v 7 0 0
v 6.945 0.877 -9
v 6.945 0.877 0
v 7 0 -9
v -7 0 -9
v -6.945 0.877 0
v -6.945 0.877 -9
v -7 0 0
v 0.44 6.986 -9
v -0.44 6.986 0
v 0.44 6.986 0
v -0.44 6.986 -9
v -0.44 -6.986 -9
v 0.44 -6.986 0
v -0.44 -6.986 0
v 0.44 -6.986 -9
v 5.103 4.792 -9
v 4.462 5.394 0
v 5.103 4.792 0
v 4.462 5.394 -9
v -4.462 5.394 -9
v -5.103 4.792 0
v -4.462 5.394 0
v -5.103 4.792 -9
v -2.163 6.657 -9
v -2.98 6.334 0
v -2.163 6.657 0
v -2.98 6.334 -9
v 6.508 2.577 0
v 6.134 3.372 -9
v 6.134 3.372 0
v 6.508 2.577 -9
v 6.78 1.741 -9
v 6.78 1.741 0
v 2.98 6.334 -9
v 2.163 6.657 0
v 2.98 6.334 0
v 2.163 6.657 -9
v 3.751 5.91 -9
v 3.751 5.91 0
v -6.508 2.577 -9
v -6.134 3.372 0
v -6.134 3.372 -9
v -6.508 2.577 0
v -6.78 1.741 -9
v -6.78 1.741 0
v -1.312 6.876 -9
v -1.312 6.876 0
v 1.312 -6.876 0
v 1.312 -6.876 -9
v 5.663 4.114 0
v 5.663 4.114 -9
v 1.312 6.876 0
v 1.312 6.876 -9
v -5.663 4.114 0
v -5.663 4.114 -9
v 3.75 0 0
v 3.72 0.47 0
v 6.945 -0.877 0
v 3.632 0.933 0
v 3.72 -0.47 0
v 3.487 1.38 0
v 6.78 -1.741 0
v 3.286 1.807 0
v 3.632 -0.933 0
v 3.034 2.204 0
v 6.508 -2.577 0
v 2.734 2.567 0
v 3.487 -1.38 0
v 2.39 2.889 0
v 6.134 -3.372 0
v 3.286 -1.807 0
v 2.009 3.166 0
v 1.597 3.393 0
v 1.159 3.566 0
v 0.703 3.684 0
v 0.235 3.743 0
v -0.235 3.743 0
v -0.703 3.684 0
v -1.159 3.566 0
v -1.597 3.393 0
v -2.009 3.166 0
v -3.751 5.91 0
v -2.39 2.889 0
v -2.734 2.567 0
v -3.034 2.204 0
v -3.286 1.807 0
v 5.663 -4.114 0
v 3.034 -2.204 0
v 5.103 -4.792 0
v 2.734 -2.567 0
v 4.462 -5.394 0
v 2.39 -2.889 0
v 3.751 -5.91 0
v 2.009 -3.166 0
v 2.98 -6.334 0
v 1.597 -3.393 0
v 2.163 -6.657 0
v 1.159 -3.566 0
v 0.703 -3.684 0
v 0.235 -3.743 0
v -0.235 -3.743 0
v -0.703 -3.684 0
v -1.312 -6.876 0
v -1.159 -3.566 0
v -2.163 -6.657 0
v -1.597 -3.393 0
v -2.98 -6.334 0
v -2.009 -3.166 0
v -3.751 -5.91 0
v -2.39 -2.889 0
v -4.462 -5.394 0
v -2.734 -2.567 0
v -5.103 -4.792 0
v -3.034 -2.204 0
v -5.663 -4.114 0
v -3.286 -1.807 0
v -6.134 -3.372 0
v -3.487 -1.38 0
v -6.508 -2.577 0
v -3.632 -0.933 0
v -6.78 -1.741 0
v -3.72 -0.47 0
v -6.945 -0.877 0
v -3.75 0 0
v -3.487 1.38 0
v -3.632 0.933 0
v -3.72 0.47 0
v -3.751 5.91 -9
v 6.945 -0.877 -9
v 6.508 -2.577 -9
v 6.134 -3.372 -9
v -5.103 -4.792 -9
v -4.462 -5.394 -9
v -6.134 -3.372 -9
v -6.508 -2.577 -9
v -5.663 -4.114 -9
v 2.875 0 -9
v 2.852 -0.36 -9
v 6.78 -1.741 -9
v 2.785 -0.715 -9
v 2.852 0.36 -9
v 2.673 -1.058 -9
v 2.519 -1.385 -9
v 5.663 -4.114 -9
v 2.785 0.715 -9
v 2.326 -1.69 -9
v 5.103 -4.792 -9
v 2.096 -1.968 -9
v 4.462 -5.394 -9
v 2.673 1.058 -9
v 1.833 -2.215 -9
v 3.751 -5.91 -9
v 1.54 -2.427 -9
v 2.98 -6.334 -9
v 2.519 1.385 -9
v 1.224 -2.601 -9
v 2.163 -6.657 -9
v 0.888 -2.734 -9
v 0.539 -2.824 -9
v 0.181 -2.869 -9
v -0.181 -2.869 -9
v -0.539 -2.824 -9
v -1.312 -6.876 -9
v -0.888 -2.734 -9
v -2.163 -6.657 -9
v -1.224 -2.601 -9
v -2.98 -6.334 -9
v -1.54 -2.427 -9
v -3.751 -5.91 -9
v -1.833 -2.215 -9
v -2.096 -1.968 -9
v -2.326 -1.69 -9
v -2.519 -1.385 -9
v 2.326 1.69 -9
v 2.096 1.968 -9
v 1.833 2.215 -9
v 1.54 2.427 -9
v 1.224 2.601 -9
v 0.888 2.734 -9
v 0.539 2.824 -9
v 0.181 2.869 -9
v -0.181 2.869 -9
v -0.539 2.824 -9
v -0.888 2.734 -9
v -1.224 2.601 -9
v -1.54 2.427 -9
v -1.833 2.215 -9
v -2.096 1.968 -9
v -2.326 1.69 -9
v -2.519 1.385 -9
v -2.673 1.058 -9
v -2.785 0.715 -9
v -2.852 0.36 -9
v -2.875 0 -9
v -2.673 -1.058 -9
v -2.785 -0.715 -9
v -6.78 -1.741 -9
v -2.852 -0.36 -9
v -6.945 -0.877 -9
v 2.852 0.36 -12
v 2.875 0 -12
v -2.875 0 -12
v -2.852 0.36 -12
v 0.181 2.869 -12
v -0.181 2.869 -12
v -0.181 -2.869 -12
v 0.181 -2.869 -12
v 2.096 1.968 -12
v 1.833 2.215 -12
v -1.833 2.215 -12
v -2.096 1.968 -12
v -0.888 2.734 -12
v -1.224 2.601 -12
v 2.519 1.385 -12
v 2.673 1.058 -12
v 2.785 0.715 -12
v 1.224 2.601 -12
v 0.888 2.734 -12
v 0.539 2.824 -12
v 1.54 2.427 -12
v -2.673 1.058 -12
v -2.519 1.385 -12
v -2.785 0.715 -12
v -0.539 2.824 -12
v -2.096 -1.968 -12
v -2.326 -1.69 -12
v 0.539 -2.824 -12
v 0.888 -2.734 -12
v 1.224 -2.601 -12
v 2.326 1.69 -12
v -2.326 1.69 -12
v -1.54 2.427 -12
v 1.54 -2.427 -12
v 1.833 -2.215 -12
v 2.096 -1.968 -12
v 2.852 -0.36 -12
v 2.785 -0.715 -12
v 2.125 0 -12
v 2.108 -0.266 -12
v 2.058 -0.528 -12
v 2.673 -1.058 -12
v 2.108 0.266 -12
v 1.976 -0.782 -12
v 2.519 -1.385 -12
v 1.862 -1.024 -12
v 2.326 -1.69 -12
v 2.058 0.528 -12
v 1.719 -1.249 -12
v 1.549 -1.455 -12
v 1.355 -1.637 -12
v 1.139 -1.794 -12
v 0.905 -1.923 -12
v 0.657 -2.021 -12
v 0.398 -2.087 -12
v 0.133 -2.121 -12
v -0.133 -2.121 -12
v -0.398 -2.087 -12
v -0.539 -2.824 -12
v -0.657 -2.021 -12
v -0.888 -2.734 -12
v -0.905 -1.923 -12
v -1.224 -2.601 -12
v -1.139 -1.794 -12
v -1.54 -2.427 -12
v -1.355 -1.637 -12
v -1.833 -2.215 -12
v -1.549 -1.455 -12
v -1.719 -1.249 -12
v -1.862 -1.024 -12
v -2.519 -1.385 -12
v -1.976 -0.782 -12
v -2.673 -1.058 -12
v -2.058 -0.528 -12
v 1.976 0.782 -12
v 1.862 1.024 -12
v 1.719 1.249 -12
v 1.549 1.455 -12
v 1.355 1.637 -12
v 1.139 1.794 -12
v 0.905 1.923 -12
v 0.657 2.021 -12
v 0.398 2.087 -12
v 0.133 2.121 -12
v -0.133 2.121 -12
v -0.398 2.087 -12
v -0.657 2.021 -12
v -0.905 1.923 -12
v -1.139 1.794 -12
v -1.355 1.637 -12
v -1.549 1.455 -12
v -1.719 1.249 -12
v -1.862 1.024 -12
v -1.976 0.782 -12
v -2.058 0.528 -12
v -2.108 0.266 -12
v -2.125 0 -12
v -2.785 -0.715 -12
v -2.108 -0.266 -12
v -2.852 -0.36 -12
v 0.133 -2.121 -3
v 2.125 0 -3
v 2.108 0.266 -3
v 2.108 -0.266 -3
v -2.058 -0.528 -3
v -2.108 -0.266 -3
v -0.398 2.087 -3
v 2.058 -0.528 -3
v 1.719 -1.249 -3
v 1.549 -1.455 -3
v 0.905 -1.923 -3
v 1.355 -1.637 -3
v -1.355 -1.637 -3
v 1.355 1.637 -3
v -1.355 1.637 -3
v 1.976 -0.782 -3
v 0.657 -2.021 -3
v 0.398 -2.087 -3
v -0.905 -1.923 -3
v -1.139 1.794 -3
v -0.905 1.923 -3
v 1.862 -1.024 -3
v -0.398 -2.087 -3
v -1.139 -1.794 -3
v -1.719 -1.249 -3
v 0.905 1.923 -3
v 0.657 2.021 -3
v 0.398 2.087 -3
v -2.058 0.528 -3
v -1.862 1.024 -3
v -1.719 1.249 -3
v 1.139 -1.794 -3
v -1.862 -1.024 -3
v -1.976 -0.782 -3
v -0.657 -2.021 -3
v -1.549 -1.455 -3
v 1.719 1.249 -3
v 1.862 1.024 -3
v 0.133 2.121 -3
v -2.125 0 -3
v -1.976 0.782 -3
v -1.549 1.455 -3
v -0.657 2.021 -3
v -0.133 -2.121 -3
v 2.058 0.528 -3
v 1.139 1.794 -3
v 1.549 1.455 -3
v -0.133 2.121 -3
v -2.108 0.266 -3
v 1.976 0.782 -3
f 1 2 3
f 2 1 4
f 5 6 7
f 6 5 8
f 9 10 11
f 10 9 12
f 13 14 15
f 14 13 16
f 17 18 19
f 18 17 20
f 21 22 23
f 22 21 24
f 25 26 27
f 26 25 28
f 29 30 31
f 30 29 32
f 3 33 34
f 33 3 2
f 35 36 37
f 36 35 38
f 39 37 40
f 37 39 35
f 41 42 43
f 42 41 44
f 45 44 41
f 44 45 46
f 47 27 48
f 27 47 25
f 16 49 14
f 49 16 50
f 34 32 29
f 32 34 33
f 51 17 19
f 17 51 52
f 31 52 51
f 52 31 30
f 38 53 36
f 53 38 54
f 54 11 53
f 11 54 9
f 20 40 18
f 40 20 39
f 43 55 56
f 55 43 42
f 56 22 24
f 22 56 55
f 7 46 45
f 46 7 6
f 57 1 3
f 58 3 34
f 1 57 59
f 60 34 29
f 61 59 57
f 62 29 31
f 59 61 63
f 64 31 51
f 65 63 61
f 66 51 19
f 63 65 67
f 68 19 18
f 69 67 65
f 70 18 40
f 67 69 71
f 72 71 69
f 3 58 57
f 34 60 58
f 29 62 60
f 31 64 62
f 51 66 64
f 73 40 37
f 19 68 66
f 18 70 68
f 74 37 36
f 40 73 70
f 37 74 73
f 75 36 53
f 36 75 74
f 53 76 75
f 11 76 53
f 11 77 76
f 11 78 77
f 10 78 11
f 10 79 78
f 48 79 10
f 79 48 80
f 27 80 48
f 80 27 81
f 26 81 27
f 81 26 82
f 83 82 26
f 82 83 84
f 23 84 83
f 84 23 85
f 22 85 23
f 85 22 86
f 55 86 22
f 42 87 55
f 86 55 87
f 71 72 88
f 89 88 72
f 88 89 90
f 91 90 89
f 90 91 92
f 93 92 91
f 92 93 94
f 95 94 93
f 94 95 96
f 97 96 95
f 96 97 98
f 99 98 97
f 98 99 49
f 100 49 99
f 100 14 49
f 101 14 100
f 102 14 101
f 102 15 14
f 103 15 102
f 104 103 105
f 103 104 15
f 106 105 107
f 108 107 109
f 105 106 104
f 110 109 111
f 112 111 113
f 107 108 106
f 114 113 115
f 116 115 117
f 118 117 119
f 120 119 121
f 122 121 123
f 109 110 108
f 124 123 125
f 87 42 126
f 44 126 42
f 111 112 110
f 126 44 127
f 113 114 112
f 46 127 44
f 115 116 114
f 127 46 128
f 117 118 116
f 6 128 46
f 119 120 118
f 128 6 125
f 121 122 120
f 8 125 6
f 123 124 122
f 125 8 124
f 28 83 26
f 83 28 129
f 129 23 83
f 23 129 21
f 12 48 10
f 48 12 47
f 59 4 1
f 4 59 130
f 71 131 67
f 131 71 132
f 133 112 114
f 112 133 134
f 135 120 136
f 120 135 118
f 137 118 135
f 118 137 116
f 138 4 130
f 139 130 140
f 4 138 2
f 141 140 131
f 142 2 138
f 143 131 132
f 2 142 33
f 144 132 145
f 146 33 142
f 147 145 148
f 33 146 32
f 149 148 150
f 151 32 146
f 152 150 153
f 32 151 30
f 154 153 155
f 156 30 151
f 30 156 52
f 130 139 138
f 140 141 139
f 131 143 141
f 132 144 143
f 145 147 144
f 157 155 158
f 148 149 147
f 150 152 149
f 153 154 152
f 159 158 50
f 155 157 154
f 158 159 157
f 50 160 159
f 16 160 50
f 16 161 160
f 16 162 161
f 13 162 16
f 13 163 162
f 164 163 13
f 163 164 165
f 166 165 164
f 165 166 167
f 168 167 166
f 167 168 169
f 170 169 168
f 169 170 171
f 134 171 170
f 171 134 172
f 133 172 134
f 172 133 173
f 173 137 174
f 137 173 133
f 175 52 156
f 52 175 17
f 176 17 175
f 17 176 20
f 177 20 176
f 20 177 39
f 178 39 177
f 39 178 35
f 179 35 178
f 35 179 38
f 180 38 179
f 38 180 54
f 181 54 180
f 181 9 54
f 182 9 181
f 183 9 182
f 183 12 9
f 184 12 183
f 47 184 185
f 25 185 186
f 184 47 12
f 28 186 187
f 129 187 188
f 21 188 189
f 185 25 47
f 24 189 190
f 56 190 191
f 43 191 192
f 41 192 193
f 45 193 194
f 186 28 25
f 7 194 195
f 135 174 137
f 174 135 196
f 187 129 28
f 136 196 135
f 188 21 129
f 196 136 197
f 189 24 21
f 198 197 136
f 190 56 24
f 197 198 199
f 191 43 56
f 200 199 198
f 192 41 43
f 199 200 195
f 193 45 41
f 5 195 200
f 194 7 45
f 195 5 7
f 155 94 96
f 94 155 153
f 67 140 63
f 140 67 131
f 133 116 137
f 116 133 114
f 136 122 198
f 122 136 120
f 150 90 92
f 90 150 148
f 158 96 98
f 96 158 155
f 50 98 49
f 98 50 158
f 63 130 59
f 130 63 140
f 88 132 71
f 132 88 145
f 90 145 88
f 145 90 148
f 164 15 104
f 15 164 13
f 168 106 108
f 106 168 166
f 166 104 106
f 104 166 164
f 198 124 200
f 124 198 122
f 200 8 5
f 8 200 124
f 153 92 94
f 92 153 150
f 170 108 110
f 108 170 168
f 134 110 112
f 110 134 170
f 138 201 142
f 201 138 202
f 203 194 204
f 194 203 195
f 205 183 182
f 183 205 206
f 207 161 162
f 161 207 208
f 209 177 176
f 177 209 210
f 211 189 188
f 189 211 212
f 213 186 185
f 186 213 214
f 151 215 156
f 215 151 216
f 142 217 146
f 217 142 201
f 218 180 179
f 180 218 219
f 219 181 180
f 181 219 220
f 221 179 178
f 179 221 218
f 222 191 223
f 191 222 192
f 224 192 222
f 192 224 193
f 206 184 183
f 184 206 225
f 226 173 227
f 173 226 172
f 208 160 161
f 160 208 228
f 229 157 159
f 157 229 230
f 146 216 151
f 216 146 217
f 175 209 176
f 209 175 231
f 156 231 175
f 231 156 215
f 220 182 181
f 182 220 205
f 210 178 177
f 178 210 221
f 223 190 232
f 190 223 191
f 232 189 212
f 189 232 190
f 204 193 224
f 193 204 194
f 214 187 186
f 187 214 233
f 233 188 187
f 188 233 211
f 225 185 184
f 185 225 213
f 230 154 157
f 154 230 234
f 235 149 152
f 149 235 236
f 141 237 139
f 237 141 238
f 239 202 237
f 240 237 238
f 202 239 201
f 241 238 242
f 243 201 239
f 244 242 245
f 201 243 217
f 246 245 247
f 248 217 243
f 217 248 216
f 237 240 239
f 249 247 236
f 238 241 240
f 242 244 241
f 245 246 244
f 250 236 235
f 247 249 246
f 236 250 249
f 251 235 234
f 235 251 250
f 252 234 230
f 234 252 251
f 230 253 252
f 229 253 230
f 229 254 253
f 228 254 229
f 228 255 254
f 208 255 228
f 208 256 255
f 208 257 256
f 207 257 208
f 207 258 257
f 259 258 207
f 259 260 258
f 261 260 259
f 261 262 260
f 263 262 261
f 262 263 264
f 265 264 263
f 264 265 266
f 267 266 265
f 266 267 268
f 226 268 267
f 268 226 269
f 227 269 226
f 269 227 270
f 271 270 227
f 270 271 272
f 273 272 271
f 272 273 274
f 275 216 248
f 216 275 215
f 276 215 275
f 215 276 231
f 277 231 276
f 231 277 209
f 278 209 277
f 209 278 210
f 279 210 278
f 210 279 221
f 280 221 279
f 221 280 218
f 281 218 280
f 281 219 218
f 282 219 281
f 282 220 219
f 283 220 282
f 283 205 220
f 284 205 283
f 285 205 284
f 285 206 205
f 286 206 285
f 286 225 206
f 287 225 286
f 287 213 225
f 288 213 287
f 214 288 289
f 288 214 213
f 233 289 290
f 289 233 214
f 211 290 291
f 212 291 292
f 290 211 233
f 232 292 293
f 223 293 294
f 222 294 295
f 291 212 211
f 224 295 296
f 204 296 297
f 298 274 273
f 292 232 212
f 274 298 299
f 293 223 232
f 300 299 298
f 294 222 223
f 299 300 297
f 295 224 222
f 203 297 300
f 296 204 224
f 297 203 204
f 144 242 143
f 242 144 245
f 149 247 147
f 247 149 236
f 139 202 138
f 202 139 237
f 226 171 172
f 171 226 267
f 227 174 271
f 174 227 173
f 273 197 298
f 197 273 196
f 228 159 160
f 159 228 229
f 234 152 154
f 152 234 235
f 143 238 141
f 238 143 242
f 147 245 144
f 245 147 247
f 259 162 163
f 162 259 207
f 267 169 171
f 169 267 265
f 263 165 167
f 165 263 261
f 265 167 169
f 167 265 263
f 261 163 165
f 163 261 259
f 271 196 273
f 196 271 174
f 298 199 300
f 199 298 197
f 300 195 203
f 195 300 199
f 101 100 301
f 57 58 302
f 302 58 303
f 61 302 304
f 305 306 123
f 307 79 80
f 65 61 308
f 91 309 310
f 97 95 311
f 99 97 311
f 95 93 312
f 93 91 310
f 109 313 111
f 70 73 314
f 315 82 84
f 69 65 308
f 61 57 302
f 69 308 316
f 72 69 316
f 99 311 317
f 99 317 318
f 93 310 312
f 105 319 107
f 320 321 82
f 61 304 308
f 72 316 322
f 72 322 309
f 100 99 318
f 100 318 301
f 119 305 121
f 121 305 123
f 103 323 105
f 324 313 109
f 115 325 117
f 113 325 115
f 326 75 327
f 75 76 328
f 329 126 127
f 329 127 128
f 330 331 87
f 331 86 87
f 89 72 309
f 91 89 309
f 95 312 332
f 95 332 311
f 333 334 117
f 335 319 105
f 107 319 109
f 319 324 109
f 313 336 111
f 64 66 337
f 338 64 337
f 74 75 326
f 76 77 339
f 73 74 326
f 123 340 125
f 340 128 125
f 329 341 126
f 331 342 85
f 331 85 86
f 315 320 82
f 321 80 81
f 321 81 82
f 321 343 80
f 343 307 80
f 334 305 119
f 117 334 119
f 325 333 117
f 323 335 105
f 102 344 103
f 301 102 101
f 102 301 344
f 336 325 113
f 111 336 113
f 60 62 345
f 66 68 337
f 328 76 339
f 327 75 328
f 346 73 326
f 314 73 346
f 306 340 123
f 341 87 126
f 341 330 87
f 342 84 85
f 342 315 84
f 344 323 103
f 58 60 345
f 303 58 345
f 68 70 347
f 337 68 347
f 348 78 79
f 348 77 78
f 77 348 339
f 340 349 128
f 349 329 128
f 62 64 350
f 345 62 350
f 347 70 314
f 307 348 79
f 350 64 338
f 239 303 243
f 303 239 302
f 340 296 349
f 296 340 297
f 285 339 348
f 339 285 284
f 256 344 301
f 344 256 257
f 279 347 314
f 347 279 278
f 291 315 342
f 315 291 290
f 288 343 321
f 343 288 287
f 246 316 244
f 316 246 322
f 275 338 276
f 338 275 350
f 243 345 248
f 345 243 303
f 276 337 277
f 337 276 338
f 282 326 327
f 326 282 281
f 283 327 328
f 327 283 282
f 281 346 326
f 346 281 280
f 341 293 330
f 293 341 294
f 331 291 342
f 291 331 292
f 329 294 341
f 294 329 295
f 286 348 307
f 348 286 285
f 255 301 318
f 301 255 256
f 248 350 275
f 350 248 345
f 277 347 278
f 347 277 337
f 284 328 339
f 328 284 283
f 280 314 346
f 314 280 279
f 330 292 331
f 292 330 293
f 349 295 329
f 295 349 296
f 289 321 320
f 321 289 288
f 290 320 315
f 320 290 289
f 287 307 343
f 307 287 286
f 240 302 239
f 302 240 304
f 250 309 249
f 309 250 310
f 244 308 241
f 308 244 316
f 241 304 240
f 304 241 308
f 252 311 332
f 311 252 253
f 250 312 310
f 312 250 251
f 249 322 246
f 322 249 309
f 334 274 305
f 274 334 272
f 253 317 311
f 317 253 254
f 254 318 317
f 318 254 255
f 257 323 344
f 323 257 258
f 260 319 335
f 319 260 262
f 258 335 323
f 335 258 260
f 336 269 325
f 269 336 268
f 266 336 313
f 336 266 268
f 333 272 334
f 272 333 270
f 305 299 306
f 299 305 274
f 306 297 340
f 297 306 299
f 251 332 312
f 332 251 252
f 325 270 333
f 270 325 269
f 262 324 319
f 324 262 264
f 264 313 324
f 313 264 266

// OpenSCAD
$fn = 50;


difference() {
	union() {
		translate(v = [0, 0, -9.0000000000]) {
			cylinder(h = 9, r = 7.0000000000);
		}
		translate(v = [0, 0, -12.0000000000]) {
			cylinder(h = 12, r = 2.8750000000);
		}
	}
	union() {
		translate(v = [0, 0, 0]) {
			rotate(a = [0, 0, 0]) {
				difference() {
					union() {
						translate(v = [0, 0, -12.0000000000]) {
							cylinder(h = 12, r = 2.0000000000);
						}
						translate(v = [0, 0, -3]) {
							cylinder(h = 3, r1 = 2.1250000000, r2 = 3.7500000000);
						}
						translate(v = [0, 0, -12.0000000000]) {
							cylinder(h = 12, r = 2.1250000000);
						}
						translate(v = [0, 0, -12.0000000000]) {
							cylinder(h = 12, r = 2.0000000000);
						}
					}
					union();
				}
			}
		}
	}
}
